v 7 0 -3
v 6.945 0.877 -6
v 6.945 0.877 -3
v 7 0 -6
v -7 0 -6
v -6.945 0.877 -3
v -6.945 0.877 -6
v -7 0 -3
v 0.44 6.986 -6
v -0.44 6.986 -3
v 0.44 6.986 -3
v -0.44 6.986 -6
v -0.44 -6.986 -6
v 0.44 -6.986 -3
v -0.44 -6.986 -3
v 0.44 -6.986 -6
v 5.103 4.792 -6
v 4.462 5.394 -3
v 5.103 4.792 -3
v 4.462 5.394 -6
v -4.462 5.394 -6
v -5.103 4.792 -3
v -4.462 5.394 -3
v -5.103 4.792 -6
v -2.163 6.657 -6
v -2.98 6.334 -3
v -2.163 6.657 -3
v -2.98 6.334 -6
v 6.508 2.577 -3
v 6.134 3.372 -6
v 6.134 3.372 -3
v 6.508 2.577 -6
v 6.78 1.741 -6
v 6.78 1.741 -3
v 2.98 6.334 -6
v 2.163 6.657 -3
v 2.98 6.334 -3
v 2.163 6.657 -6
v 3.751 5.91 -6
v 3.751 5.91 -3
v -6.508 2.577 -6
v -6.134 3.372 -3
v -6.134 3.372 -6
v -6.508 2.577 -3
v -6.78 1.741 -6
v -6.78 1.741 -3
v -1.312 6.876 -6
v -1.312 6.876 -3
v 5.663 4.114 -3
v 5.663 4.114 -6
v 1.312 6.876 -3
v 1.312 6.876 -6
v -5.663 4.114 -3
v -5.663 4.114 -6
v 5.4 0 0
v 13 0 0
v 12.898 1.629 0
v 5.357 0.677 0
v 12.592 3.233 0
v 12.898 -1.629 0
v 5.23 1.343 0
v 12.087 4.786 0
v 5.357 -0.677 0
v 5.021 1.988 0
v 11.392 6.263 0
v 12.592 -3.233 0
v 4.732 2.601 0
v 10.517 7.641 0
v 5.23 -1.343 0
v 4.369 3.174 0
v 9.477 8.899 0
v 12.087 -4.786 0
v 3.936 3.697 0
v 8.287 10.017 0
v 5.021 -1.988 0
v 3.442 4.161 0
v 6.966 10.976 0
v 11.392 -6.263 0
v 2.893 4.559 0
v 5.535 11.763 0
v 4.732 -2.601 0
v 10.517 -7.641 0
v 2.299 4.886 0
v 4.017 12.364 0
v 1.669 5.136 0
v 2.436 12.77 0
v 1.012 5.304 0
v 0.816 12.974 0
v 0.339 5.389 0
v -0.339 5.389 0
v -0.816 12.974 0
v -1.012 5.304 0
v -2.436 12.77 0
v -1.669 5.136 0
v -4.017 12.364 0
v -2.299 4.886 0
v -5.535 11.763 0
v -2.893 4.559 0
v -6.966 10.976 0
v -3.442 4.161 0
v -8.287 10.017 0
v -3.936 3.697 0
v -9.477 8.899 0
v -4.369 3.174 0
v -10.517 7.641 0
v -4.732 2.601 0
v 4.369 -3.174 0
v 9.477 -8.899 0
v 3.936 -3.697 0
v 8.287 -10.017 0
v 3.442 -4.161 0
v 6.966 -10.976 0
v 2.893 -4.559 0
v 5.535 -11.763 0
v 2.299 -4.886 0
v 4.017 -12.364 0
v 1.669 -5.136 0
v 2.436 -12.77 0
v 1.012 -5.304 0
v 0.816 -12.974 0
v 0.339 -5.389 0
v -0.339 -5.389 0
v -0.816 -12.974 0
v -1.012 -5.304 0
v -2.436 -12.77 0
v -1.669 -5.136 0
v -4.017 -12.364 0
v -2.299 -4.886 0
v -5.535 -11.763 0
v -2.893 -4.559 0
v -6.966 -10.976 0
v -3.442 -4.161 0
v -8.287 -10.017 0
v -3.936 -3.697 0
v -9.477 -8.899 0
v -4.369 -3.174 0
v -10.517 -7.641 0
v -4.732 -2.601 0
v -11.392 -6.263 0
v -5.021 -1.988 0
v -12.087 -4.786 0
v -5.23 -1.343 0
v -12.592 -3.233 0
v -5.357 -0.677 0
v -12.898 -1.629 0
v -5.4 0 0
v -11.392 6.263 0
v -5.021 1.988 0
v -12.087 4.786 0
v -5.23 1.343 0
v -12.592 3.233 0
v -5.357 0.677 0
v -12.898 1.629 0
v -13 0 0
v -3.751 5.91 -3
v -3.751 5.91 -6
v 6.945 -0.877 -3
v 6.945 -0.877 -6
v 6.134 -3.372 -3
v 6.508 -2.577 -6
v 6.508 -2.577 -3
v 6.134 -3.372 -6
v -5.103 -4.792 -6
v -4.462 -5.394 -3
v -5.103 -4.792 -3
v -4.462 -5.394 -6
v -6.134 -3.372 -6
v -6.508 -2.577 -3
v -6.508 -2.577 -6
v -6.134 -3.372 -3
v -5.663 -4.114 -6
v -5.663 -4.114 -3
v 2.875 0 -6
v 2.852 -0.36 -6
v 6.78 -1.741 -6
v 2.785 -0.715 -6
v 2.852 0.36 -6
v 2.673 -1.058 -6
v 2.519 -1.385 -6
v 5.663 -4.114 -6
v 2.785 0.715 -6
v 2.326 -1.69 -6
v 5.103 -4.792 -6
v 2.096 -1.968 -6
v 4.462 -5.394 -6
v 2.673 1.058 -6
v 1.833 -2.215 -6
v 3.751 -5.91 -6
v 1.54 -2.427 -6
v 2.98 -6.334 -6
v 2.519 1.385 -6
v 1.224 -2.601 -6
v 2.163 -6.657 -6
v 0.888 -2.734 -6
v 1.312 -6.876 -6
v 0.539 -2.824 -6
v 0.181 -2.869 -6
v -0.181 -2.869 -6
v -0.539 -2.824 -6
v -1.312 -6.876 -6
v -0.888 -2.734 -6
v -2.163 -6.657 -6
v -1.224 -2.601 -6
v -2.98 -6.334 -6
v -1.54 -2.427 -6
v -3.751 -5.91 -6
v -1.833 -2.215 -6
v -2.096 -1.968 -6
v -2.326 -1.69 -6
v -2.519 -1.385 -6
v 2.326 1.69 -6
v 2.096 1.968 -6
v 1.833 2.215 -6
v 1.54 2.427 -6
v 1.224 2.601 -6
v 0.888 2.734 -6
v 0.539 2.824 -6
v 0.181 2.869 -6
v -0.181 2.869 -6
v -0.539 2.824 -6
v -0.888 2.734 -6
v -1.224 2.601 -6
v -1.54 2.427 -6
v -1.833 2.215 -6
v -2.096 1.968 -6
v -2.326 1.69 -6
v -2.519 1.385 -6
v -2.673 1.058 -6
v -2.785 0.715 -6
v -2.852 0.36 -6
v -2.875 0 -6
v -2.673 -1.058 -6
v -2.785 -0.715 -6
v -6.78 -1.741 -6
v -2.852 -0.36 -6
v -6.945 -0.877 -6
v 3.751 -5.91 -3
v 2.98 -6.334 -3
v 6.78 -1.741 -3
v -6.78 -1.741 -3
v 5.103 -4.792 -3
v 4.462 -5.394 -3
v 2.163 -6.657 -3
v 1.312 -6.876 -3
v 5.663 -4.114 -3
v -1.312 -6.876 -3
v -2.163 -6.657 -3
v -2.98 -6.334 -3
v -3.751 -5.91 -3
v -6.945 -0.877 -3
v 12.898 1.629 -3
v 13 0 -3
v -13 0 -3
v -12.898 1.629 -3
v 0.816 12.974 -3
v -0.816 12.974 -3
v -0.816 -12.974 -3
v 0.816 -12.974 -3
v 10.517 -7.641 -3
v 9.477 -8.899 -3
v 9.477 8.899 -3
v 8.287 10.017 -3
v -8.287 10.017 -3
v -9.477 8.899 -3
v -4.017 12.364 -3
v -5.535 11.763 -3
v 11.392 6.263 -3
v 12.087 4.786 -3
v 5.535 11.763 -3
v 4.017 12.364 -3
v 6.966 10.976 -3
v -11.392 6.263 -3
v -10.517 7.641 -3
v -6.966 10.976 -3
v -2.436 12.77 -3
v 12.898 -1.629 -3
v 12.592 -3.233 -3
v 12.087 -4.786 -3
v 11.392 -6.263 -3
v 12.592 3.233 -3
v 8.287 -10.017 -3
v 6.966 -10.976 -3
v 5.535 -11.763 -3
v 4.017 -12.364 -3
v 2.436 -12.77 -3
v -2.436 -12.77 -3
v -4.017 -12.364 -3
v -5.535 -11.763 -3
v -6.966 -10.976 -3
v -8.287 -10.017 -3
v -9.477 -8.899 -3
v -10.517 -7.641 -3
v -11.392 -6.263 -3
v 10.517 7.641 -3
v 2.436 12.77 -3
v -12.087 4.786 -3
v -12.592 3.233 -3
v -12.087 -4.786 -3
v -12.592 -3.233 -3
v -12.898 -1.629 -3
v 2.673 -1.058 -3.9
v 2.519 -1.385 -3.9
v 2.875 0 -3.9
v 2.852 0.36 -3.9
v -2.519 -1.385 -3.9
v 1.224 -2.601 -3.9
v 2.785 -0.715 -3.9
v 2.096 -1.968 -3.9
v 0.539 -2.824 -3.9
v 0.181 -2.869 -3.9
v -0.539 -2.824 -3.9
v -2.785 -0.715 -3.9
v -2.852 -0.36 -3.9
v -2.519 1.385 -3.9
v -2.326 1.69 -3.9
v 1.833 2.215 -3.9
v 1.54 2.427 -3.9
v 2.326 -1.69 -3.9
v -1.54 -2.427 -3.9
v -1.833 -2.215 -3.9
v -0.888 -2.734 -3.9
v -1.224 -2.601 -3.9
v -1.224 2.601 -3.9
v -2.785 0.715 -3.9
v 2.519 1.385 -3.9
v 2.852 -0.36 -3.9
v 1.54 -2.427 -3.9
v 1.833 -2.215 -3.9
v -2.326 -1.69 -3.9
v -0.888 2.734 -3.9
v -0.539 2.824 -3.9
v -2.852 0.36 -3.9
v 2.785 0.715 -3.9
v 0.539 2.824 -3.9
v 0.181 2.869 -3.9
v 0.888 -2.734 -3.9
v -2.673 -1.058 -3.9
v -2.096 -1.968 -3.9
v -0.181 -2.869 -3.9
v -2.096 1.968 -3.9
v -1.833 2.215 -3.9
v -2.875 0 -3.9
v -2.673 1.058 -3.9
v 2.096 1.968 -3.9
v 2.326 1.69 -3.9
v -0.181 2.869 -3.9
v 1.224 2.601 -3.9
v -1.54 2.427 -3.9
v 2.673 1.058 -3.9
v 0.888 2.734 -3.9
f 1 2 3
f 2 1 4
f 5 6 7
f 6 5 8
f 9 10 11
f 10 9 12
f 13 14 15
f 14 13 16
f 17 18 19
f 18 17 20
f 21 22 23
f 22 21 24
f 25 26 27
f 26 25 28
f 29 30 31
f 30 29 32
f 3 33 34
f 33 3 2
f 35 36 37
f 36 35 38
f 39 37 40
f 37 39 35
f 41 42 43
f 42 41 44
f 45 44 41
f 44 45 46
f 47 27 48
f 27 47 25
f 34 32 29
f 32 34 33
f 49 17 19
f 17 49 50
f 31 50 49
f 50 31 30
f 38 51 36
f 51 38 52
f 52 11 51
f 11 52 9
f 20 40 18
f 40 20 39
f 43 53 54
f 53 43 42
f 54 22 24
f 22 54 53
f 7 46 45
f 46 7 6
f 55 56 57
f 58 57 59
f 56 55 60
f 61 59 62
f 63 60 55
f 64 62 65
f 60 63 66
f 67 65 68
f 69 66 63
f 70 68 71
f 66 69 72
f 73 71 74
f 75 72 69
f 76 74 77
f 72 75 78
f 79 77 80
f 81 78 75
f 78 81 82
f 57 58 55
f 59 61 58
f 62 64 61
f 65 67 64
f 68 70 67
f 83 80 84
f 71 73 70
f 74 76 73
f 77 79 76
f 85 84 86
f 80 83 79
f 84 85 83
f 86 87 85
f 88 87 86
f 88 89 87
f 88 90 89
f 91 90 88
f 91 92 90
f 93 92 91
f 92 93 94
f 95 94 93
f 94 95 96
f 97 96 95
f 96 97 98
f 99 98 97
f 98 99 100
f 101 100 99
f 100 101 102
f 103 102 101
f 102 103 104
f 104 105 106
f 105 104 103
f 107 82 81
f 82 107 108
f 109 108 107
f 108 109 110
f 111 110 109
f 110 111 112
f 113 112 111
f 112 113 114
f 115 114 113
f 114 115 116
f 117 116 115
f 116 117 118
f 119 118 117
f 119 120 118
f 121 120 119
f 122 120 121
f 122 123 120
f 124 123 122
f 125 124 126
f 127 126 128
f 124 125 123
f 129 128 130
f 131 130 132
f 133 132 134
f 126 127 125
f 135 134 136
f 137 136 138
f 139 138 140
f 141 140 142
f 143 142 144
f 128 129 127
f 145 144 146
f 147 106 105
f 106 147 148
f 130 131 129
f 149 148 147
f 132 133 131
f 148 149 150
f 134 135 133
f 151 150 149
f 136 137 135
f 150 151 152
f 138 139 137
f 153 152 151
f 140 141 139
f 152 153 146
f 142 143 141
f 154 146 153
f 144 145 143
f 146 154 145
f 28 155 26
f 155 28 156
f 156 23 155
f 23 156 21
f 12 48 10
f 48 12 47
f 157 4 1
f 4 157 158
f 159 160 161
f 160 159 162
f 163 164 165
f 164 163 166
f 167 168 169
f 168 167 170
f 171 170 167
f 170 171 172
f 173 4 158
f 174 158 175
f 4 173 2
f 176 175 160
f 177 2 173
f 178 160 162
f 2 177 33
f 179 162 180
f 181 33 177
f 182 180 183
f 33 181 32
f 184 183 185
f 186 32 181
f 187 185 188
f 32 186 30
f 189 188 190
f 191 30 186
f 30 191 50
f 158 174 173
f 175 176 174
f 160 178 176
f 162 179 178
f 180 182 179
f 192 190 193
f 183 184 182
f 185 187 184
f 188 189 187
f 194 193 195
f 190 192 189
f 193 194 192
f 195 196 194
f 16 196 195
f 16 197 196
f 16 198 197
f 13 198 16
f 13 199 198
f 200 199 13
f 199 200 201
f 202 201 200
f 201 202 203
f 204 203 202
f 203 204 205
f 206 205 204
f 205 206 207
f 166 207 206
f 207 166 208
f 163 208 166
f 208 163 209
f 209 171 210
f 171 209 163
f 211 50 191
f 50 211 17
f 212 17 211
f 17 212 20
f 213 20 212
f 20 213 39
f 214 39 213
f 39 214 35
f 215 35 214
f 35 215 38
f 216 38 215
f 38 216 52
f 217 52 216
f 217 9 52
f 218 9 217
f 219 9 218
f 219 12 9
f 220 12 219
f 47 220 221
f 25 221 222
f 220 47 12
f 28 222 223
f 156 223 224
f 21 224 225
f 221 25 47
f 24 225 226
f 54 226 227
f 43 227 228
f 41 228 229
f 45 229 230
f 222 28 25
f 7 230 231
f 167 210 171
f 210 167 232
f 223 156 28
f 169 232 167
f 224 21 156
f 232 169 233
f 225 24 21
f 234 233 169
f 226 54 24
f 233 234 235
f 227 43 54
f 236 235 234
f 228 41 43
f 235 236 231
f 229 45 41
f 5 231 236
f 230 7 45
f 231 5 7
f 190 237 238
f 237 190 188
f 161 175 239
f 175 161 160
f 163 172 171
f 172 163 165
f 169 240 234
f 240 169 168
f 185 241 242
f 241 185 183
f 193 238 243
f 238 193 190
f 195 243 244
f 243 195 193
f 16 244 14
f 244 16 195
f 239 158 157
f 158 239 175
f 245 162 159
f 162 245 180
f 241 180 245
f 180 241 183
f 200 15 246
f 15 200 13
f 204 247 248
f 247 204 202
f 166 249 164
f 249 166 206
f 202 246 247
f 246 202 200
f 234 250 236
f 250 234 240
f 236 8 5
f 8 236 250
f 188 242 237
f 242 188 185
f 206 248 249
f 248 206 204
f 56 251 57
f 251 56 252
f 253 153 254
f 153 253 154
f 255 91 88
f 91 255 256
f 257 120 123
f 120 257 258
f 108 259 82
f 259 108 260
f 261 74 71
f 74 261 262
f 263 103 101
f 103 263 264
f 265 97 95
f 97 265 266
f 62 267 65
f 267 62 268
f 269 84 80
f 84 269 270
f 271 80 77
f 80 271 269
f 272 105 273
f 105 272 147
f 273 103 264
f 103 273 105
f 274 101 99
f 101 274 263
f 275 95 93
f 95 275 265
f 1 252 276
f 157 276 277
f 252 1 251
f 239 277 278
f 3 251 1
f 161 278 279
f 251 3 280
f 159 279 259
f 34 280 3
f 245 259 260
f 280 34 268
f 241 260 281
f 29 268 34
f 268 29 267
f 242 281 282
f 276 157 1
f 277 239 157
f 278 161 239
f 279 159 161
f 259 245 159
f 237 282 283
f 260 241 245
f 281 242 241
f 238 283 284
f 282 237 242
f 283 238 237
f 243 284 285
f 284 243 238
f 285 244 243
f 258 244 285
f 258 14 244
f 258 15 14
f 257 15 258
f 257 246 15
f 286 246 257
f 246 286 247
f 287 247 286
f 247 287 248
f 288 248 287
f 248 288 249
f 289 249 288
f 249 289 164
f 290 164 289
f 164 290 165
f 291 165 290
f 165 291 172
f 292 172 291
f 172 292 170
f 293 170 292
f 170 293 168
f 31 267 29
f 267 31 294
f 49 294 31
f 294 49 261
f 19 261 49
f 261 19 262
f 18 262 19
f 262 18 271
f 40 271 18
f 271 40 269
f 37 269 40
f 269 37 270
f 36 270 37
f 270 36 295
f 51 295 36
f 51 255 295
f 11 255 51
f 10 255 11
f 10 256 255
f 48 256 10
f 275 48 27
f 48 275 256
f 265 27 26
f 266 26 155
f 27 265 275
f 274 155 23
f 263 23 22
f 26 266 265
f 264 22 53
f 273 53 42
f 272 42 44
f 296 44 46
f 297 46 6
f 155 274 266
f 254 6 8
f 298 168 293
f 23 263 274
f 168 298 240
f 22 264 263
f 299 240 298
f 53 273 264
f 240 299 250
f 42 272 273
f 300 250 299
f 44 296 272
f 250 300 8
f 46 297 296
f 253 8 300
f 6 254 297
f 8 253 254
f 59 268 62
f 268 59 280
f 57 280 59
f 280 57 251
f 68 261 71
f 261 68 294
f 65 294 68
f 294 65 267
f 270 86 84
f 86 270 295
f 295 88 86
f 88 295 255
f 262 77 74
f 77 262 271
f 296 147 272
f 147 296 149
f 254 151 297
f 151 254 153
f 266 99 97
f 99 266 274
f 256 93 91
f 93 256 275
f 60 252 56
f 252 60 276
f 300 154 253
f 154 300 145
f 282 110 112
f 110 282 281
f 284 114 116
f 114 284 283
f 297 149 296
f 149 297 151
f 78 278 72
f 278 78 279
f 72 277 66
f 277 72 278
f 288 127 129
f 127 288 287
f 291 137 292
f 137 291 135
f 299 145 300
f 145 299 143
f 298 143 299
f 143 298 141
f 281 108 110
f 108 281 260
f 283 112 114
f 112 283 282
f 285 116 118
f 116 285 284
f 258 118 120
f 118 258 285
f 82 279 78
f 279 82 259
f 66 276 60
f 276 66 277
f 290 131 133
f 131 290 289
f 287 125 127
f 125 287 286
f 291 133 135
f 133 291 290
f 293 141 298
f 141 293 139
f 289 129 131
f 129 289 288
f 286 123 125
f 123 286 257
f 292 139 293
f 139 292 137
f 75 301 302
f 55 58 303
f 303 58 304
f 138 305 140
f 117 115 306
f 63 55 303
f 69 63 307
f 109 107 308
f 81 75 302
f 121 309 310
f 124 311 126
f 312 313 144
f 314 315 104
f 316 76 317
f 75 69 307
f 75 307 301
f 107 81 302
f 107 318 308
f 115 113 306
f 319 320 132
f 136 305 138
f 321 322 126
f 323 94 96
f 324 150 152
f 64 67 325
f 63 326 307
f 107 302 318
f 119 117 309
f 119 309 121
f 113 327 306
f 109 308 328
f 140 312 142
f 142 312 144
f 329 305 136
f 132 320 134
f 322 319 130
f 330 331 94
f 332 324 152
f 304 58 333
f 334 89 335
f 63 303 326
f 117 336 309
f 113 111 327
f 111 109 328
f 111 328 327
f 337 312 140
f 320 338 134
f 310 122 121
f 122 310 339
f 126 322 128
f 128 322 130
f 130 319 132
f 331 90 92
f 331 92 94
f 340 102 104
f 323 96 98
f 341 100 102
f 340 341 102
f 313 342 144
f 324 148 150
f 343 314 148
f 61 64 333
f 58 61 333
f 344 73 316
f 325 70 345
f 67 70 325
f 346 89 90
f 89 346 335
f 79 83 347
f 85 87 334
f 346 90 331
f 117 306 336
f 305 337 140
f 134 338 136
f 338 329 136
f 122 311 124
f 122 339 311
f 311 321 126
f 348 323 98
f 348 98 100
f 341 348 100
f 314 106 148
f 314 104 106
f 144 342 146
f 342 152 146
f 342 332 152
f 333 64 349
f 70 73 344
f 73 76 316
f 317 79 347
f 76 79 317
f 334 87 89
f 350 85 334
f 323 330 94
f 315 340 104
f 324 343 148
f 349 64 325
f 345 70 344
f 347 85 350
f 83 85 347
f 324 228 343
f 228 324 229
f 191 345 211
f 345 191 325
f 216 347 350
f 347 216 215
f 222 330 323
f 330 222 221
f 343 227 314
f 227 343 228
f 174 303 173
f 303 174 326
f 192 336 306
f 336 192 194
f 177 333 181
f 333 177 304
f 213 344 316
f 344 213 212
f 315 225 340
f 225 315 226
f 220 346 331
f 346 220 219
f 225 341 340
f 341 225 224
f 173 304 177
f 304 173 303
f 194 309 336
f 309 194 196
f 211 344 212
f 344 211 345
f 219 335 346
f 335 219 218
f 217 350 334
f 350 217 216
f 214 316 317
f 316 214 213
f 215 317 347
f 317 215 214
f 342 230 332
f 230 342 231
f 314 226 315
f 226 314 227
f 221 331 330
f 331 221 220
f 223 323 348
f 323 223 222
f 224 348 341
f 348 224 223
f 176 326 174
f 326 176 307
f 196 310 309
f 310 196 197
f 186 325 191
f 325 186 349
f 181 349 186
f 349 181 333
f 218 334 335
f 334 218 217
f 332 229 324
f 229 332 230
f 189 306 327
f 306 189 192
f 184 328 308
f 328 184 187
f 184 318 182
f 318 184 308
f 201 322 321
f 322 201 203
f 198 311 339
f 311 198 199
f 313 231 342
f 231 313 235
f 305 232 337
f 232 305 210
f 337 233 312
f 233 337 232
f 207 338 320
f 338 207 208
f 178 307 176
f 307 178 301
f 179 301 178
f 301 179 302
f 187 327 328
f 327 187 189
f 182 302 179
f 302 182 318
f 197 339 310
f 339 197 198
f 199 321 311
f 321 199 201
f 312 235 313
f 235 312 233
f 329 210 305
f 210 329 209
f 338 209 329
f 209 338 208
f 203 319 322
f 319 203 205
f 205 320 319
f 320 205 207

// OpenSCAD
$fn = 50;


difference() {
	union() {
		translate(v = [0, 0, -6.0000000000]) {
			cylinder(h = 6, r = 7.0000000000);
		}
		translate(v = [0, 0, -3.0000000000]) {
			cylinder(h = 3, r = 13.0000000000);
		}
	}
	union() {
		translate(v = [0, 0, 0]) {
			rotate(a = [0, 0, 0]) {
				difference() {
					union() {
						#translate(v = [0, 0, -6.0000000000]) {
							cylinder(h = 6, r = 2.6000000000);
						}
						#translate(v = [0, 0, -3.9000000000]) {
							cylinder(h = 3.9000000000, r = 7.0000000000, r1 = 2.8750000000, r2 = 5.4000000000);
						}
						#translate(v = [0, 0, -6.0000000000]) {
							cylinder(h = 6, r = 2.8750000000);
						}
						#translate(v = [0, 0, -6.0000000000]) {
							cylinder(h = 6, r = 2.6000000000);
						}
					}
					union();
				}
			}
		}
	}
}
